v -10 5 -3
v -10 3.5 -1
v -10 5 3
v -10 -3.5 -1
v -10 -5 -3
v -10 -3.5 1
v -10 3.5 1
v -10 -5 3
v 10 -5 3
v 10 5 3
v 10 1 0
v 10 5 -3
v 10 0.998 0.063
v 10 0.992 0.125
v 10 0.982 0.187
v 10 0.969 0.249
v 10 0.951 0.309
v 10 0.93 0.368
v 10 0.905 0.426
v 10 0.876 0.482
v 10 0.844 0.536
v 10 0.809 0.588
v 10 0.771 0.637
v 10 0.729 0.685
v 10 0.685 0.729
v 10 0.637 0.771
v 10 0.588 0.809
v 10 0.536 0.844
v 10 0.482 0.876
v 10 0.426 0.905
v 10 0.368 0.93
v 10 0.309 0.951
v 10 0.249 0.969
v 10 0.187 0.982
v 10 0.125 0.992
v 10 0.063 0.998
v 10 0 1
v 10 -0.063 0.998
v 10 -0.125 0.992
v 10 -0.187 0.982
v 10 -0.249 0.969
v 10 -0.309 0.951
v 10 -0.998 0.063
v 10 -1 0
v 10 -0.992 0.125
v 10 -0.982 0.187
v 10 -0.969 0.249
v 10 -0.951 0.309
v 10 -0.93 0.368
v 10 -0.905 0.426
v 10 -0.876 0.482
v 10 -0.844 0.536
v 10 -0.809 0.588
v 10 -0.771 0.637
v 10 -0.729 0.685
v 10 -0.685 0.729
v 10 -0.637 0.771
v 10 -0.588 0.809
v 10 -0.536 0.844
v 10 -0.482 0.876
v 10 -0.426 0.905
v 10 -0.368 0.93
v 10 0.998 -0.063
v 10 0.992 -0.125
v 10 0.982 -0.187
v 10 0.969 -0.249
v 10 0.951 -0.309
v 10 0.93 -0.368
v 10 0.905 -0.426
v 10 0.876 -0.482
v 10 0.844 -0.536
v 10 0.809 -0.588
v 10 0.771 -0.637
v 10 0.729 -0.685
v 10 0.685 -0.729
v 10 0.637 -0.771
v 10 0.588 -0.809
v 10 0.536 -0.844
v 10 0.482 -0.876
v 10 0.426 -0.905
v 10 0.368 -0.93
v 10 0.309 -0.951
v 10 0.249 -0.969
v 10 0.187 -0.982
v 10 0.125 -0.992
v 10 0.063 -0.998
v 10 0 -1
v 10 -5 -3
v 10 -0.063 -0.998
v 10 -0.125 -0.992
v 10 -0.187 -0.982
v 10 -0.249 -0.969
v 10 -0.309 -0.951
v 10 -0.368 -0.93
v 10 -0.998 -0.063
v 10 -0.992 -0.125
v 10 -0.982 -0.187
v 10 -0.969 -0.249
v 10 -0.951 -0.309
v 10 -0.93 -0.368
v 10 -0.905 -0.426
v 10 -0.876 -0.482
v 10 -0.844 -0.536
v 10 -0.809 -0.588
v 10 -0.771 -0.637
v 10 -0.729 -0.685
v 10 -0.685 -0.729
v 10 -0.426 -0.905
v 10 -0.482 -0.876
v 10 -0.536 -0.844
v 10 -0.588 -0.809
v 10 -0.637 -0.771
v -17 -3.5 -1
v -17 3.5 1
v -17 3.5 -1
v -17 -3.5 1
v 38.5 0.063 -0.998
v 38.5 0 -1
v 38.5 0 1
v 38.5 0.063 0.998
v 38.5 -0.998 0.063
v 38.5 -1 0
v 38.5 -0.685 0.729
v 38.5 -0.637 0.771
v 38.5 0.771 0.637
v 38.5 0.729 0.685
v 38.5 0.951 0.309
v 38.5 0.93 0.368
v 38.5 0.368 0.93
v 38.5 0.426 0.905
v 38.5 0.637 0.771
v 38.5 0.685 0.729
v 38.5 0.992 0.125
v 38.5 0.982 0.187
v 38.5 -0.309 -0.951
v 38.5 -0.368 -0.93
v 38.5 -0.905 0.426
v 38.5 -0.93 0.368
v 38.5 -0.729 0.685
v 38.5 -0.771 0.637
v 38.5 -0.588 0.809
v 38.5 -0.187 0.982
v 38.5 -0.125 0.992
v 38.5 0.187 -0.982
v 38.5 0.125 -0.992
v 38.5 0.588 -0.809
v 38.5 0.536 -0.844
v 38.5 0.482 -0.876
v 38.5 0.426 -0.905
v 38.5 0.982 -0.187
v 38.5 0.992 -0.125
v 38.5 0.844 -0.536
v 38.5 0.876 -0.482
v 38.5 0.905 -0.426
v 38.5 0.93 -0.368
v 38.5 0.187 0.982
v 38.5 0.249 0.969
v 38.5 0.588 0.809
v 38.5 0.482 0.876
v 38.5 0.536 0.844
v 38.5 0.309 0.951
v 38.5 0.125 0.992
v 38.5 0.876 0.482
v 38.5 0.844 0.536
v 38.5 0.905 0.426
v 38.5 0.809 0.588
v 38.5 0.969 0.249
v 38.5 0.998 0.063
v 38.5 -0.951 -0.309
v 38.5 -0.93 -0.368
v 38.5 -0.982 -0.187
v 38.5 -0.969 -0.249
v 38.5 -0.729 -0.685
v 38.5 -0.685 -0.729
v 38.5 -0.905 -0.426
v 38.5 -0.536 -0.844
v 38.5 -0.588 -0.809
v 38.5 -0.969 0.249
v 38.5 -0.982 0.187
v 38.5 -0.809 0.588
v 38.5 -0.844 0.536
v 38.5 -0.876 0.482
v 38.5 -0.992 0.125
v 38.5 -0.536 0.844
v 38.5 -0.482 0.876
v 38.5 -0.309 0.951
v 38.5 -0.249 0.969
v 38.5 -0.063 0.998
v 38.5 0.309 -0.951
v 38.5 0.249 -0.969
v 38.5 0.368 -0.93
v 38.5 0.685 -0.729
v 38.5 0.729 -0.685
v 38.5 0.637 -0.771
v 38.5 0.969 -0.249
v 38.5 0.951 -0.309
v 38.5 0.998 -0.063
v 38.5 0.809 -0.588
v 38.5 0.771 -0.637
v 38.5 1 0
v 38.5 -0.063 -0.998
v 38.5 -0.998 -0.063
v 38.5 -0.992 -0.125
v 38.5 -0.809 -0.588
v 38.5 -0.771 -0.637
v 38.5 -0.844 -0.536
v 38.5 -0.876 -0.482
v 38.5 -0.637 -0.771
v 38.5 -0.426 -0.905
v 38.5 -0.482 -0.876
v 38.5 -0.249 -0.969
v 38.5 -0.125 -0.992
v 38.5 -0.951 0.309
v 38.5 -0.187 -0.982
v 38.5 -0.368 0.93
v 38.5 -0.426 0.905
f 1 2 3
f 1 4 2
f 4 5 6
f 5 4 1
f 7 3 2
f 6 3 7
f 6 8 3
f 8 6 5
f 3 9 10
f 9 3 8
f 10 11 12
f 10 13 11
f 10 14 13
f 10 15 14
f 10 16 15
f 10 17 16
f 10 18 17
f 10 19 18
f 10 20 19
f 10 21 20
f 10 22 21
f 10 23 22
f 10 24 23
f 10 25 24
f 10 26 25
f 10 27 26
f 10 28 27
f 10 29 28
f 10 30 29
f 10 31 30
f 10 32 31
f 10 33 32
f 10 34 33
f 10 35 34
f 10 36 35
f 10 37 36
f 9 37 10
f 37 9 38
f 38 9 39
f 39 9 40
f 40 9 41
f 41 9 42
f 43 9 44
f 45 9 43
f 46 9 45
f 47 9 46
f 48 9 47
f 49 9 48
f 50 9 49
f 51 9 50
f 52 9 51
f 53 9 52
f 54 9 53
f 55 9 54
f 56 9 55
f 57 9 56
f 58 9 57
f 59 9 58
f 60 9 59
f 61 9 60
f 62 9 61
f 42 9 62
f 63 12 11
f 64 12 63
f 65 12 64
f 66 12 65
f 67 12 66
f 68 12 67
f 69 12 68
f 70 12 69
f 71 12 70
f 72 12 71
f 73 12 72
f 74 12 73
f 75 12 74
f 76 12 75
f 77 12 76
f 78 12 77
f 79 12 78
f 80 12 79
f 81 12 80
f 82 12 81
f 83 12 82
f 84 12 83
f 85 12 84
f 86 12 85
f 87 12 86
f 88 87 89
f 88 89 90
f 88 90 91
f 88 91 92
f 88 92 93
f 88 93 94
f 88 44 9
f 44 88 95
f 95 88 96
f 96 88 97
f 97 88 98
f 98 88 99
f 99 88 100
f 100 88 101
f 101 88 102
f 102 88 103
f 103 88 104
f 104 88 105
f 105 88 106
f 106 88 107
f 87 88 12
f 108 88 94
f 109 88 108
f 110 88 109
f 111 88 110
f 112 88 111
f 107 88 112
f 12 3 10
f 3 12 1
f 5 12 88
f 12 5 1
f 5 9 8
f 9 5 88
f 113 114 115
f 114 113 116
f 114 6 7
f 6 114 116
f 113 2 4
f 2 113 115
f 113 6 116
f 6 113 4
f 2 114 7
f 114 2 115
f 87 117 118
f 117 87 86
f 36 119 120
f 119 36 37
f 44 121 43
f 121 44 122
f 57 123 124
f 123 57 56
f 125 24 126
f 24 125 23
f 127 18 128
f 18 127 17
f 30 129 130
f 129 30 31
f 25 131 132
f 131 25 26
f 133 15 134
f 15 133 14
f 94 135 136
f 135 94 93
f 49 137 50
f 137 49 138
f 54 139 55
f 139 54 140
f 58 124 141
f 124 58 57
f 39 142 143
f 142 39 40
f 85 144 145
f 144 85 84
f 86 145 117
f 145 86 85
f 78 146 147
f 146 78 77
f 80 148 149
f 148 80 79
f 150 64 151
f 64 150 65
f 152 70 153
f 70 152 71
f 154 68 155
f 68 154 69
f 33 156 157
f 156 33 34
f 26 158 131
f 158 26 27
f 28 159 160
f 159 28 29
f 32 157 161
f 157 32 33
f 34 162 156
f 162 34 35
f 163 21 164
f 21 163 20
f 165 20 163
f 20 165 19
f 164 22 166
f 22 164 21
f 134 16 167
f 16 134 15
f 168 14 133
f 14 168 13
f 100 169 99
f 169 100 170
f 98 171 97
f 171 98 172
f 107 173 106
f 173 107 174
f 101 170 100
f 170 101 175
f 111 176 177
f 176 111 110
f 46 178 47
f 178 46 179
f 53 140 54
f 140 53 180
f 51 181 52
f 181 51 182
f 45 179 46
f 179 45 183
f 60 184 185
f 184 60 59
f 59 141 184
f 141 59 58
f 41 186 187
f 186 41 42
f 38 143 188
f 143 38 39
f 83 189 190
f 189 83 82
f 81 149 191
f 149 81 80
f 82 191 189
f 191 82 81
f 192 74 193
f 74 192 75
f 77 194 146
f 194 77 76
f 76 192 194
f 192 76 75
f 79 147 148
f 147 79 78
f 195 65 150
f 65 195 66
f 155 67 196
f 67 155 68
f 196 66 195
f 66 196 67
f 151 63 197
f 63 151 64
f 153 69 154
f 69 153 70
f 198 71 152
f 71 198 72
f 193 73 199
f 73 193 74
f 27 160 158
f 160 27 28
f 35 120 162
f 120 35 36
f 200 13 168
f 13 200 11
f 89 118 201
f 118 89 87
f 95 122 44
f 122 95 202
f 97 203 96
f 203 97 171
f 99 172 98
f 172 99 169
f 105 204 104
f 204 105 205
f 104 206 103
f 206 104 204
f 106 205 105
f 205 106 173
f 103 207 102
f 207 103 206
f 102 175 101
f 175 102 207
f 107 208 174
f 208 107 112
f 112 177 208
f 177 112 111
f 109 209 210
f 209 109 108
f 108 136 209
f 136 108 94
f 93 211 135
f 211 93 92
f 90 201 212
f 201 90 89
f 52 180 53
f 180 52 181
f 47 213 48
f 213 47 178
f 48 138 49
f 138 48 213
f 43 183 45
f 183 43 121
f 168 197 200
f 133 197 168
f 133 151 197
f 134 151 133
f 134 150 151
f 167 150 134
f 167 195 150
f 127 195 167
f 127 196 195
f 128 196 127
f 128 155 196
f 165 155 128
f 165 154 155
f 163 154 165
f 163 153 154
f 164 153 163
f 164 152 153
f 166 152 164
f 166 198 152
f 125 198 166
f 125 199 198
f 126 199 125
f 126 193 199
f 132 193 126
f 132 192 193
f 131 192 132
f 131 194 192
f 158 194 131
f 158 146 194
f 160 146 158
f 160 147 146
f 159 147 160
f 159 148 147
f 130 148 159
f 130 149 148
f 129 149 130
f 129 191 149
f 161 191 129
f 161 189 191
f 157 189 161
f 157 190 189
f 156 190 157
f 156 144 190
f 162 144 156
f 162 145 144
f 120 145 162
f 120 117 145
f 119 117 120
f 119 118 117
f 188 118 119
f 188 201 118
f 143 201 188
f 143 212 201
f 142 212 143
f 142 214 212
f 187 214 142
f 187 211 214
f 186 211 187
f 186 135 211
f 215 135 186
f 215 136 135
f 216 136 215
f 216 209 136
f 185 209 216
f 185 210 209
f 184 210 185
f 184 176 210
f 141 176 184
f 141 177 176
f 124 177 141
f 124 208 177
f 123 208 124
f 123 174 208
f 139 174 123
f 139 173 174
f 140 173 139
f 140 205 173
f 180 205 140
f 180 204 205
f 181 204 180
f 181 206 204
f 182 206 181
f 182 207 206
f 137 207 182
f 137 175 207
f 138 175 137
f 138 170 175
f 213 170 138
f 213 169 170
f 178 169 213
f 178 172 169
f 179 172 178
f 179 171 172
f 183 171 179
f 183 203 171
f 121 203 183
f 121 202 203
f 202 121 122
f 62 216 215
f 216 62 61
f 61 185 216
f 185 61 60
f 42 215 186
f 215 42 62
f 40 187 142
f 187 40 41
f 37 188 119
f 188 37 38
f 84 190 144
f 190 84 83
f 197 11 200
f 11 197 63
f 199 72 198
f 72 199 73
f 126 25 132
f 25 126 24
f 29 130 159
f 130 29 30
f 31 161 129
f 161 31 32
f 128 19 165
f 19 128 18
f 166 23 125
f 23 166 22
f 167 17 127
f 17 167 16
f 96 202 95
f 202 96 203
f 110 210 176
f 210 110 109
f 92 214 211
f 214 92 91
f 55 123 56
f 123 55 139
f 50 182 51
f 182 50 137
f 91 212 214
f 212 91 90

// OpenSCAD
$fn=100;
cube(size = [20,10,6], center = true);
translate([-13.5,0,0])cube(size = [7,7,2], center = true);
translate([13.5,0,0])rotate([0,90,0])cylinder(h = 50, r = 1, center = true);
